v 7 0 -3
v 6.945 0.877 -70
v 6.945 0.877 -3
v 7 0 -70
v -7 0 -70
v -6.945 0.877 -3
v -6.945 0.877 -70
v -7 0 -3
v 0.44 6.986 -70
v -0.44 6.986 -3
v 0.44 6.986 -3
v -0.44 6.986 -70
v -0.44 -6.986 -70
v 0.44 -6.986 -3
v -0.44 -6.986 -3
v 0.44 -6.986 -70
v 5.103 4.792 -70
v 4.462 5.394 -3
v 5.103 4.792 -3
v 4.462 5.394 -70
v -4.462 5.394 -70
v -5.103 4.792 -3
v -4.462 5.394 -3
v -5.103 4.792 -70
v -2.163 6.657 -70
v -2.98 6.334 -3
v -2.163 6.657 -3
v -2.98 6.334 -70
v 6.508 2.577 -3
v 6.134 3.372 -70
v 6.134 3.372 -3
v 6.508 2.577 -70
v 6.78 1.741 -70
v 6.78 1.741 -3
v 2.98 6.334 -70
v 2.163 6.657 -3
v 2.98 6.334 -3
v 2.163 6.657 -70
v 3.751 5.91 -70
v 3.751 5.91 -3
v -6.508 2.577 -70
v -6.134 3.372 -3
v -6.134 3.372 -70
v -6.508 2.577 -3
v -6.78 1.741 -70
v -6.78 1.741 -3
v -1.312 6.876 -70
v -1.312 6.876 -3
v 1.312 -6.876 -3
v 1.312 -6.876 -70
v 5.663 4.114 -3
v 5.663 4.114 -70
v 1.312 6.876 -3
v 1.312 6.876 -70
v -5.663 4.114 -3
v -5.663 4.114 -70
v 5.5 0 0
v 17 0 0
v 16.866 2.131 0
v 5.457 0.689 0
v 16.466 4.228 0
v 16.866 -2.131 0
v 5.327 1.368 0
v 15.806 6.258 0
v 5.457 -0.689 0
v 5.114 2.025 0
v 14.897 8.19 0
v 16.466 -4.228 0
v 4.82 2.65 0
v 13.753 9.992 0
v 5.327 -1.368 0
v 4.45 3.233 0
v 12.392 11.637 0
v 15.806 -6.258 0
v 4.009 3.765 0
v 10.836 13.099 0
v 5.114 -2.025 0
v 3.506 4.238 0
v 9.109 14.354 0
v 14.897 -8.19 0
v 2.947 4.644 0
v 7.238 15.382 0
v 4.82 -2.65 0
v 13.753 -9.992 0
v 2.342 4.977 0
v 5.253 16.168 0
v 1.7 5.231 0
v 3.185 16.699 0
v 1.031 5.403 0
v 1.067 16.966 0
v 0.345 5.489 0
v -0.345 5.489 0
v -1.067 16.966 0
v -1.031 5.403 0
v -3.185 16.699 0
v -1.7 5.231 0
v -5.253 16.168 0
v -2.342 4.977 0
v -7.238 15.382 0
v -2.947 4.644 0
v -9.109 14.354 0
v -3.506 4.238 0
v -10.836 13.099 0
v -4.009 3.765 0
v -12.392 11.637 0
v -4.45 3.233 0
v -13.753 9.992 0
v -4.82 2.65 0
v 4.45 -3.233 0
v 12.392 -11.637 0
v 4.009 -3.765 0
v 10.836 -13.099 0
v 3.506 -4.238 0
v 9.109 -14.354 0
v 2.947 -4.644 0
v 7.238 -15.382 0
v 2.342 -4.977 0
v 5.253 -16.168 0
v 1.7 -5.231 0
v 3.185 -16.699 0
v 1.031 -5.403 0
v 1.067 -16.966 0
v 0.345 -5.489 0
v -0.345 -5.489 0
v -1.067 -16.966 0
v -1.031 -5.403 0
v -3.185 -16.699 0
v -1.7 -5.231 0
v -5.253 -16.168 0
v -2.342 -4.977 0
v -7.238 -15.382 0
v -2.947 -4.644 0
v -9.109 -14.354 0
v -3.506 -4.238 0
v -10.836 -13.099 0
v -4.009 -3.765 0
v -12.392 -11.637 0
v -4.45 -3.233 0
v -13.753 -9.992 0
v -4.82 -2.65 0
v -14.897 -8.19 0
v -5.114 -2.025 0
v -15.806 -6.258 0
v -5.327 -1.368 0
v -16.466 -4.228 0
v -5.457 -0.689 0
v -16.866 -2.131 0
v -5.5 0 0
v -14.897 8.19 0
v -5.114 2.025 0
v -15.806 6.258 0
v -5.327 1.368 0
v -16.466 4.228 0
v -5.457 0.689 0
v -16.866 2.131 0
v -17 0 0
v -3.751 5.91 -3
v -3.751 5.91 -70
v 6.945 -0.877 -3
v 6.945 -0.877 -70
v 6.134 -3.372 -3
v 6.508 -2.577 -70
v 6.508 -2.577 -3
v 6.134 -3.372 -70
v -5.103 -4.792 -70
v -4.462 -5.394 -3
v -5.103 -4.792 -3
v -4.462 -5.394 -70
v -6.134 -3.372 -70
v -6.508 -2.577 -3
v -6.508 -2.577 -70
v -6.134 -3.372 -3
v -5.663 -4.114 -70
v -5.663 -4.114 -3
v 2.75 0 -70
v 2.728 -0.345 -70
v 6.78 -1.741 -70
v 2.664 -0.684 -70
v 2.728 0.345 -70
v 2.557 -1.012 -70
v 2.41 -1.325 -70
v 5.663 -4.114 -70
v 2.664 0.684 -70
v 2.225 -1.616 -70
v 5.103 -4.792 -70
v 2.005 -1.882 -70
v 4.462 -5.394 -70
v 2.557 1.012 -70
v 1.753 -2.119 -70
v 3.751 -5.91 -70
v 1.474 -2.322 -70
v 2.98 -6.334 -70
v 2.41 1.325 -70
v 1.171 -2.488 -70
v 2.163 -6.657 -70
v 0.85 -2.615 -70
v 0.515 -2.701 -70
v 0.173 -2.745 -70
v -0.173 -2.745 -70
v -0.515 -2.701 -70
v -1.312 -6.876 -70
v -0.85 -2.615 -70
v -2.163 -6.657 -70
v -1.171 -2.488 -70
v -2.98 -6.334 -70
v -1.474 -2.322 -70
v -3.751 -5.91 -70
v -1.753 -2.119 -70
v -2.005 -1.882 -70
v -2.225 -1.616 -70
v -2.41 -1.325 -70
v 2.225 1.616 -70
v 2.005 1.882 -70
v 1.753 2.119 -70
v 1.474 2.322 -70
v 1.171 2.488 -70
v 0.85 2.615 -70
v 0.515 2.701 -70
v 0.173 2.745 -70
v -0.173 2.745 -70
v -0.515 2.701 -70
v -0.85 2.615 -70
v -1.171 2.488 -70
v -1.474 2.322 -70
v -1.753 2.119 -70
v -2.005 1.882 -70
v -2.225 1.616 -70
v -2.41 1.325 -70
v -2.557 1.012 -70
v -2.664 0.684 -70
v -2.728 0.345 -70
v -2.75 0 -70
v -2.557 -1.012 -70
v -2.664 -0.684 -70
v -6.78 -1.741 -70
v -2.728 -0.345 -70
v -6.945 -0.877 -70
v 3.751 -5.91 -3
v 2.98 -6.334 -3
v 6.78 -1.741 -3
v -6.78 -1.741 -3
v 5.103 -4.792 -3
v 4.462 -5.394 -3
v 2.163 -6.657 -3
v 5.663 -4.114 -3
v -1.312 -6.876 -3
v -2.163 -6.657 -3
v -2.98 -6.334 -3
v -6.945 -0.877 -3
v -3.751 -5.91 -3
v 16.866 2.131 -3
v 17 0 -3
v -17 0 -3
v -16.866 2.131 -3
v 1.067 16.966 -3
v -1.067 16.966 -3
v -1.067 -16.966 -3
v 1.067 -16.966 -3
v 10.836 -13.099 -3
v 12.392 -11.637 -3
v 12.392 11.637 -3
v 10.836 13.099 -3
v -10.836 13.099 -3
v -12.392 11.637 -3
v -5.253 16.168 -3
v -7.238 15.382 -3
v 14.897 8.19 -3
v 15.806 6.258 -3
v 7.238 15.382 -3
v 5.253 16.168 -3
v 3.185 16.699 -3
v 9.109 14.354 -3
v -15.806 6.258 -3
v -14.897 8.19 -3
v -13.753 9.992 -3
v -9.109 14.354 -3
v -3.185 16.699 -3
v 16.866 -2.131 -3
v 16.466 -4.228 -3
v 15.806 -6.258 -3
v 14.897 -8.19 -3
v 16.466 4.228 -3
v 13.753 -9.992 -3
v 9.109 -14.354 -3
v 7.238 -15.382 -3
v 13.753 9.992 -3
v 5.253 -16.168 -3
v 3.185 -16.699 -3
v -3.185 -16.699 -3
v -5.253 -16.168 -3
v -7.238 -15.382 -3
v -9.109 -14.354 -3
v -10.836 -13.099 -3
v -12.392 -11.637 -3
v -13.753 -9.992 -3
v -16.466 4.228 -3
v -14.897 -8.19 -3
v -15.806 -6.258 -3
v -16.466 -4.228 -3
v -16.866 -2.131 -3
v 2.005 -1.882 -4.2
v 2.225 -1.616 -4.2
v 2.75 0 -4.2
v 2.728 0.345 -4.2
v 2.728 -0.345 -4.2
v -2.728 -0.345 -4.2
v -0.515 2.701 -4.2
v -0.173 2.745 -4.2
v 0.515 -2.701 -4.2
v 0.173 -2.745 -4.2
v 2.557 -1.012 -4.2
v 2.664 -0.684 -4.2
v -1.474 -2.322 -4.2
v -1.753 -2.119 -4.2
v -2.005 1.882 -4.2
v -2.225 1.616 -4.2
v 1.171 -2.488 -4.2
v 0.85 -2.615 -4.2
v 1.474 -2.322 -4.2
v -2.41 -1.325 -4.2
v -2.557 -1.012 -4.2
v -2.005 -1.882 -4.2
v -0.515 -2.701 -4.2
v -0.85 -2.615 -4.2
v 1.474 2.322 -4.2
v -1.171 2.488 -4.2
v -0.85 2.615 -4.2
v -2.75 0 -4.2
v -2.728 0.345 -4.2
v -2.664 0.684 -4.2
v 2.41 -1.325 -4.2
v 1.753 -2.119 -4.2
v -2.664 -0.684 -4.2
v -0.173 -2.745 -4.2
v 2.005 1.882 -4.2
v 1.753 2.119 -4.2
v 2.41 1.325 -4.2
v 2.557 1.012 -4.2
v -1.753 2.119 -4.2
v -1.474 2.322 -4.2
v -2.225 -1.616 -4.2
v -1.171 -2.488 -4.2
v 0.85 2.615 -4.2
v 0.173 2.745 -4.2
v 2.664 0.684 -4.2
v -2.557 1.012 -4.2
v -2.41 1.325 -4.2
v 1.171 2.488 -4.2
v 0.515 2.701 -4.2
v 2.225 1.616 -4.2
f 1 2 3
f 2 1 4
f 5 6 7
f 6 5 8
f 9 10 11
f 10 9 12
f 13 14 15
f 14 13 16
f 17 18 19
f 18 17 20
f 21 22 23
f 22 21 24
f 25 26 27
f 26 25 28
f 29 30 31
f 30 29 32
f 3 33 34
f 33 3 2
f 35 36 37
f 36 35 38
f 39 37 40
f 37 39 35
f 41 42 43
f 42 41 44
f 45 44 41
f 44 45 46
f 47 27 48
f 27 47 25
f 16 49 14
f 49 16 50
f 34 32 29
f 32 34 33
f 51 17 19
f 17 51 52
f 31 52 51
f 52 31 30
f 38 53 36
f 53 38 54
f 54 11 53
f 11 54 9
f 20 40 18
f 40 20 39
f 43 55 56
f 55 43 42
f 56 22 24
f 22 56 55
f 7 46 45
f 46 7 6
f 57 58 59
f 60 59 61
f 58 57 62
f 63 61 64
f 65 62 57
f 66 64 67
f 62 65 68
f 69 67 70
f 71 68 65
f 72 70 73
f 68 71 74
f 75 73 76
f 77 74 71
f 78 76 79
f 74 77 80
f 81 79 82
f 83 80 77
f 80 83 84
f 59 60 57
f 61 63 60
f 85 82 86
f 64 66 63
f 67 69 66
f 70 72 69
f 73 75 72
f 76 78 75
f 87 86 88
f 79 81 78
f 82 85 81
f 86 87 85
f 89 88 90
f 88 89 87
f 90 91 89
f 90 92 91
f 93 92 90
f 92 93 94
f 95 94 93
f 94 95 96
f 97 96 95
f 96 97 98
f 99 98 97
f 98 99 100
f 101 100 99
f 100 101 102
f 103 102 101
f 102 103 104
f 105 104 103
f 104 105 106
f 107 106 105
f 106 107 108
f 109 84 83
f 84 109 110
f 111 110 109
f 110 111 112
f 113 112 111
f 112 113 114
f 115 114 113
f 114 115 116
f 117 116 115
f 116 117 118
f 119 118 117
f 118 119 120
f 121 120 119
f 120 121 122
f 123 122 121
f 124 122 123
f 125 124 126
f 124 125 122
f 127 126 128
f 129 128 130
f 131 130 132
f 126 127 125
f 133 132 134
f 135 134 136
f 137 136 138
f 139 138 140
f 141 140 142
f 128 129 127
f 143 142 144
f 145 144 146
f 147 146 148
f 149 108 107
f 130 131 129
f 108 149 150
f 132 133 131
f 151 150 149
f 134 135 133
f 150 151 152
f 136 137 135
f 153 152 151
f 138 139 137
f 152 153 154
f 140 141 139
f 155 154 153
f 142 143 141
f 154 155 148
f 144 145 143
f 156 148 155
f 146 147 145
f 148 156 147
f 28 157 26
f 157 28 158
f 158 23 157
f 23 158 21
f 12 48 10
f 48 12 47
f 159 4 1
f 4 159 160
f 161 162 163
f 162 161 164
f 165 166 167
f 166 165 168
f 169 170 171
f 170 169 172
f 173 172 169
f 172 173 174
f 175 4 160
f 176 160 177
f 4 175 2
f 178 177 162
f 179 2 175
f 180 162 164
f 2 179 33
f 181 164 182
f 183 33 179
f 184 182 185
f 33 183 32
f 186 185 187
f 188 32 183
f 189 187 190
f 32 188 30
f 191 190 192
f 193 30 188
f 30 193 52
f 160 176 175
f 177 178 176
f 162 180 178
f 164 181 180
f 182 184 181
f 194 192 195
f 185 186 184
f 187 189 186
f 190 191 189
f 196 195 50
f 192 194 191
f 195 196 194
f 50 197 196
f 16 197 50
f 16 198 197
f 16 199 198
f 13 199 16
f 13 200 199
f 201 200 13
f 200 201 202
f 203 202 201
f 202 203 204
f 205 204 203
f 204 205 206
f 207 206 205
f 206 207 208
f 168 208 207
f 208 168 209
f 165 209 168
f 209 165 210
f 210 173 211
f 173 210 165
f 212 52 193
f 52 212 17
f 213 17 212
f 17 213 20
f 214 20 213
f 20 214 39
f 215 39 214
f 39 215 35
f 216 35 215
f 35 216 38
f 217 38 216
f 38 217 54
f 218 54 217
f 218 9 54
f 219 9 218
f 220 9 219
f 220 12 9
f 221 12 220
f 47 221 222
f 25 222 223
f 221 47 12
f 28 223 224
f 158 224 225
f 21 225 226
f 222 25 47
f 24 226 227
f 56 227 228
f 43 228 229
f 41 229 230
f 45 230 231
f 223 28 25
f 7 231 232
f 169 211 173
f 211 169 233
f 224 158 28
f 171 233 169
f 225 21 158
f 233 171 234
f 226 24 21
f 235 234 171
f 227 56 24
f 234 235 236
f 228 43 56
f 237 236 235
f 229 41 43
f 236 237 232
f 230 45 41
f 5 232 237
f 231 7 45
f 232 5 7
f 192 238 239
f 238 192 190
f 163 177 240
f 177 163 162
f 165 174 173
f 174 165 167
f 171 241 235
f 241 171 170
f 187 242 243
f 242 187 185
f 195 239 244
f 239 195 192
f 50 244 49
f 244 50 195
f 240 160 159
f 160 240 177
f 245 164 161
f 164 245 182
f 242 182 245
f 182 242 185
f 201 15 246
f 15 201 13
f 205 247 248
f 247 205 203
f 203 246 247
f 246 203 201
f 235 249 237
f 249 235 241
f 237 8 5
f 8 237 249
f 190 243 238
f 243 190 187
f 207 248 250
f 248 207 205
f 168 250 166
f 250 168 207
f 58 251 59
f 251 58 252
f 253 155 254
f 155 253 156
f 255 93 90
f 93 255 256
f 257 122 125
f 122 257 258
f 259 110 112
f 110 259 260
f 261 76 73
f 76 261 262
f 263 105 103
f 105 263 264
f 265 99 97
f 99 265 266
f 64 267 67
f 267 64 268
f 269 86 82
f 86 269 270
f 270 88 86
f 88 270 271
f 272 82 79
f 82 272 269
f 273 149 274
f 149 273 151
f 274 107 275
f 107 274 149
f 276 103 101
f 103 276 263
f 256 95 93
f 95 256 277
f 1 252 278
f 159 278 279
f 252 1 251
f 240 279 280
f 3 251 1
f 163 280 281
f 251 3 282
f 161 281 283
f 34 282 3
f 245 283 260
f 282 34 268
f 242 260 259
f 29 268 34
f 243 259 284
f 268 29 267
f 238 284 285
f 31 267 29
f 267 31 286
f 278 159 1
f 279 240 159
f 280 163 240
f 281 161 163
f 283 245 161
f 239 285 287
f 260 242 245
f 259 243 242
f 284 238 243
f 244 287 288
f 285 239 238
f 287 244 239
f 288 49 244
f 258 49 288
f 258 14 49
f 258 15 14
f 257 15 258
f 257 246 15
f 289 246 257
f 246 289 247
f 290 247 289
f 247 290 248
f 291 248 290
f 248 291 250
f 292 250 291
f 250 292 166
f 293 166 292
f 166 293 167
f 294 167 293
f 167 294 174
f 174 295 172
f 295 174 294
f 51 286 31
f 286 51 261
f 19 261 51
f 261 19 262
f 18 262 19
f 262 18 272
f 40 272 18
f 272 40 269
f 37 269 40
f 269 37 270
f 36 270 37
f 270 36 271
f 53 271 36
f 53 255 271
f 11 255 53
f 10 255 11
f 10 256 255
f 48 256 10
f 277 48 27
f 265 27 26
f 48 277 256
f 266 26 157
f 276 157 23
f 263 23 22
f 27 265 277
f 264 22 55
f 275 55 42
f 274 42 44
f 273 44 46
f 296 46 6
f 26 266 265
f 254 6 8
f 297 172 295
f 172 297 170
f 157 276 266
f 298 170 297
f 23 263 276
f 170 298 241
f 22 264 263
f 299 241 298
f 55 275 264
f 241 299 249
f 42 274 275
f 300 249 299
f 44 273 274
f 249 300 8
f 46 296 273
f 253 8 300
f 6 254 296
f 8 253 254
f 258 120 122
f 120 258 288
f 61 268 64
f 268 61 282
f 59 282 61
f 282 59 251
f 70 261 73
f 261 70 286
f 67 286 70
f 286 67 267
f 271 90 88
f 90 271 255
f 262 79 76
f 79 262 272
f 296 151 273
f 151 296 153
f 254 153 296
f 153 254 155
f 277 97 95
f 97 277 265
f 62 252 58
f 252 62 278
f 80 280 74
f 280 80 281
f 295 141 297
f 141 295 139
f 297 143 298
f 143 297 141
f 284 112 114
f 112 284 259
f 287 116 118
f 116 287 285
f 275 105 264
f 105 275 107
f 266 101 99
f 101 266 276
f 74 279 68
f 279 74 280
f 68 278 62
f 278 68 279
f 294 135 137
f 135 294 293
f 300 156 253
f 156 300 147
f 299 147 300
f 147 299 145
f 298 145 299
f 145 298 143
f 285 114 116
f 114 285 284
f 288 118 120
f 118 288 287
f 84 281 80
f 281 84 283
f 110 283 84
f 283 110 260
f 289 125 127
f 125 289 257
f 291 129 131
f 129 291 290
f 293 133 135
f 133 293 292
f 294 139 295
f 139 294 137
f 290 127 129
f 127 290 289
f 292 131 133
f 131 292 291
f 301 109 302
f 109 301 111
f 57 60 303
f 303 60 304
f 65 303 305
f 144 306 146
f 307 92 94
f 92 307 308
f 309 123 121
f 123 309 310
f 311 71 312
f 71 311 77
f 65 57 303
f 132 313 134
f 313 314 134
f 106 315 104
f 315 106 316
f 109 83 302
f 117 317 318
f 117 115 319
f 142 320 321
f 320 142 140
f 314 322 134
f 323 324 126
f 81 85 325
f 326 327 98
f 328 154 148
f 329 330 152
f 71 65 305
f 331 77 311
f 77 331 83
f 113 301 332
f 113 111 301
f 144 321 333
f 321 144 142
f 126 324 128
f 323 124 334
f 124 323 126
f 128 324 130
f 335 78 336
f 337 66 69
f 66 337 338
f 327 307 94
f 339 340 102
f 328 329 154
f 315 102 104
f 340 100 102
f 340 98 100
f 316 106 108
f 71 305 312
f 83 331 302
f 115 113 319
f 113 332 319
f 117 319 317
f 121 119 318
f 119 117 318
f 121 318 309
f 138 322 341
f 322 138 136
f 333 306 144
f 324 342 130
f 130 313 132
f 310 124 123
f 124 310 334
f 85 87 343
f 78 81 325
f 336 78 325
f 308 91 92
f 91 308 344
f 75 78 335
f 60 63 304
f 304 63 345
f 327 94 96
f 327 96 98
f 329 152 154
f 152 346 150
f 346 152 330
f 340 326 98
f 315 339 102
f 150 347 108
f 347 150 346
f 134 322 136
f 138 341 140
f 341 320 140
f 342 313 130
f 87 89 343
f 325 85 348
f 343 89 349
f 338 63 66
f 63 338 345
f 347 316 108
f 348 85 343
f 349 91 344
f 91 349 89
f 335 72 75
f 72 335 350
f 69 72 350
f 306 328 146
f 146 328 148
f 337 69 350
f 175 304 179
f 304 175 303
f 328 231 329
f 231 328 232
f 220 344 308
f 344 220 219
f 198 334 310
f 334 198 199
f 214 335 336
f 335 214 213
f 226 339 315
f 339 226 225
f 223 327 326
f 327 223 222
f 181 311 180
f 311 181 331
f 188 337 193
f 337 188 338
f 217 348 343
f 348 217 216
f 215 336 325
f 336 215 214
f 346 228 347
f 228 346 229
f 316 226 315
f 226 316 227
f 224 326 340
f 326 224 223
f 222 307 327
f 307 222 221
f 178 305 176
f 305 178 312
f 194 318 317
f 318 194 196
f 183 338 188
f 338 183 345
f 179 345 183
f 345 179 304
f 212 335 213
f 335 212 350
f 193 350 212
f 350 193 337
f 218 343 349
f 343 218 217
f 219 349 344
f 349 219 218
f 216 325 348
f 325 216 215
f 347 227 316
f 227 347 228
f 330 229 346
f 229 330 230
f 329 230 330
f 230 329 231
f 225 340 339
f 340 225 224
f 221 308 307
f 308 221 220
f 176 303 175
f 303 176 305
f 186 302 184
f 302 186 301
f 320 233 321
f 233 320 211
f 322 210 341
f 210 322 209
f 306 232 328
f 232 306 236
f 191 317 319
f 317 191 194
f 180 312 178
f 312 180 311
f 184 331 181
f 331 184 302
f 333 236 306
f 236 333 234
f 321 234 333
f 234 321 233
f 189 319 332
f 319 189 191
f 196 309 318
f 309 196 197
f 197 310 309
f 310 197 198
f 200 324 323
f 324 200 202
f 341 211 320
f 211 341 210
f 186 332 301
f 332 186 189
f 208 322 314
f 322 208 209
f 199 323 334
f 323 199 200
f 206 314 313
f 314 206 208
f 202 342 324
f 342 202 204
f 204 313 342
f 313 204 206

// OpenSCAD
$fn = 50;


difference() {
	union() {
		translate(v = [0, 0, -70.0000000000]) {
			cylinder(h = 70, r = 7.0000000000);
		}
		translate(v = [0, 0, -3.0000000000]) {
			cylinder(h = 3, r = 17.0000000000);
		}
	}
	union() {
		translate(v = [0, 0, 0]) {
			rotate(a = [0, 0, 0]) {
				difference() {
					union() {
						#translate(v = [0, 0, -70.0000000000]) {
							cylinder(h = 70, r = 2.2500000000);
						}
						#translate(v = [0, 0, -4.2000000000]) {
							cylinder(h = 4.2000000000, r1 = 2.7500000000, r2 = 5.5000000000);
						}
						#translate(v = [0, 0, -70.0000000000]) {
							cylinder(h = 70, r = 2.7500000000);
						}
						#translate(v = [0, 0, -70.0000000000]) {
							cylinder(h = 70, r = 2.2500000000);
						}
					}
					union();
				}
			}
		}
	}
}
